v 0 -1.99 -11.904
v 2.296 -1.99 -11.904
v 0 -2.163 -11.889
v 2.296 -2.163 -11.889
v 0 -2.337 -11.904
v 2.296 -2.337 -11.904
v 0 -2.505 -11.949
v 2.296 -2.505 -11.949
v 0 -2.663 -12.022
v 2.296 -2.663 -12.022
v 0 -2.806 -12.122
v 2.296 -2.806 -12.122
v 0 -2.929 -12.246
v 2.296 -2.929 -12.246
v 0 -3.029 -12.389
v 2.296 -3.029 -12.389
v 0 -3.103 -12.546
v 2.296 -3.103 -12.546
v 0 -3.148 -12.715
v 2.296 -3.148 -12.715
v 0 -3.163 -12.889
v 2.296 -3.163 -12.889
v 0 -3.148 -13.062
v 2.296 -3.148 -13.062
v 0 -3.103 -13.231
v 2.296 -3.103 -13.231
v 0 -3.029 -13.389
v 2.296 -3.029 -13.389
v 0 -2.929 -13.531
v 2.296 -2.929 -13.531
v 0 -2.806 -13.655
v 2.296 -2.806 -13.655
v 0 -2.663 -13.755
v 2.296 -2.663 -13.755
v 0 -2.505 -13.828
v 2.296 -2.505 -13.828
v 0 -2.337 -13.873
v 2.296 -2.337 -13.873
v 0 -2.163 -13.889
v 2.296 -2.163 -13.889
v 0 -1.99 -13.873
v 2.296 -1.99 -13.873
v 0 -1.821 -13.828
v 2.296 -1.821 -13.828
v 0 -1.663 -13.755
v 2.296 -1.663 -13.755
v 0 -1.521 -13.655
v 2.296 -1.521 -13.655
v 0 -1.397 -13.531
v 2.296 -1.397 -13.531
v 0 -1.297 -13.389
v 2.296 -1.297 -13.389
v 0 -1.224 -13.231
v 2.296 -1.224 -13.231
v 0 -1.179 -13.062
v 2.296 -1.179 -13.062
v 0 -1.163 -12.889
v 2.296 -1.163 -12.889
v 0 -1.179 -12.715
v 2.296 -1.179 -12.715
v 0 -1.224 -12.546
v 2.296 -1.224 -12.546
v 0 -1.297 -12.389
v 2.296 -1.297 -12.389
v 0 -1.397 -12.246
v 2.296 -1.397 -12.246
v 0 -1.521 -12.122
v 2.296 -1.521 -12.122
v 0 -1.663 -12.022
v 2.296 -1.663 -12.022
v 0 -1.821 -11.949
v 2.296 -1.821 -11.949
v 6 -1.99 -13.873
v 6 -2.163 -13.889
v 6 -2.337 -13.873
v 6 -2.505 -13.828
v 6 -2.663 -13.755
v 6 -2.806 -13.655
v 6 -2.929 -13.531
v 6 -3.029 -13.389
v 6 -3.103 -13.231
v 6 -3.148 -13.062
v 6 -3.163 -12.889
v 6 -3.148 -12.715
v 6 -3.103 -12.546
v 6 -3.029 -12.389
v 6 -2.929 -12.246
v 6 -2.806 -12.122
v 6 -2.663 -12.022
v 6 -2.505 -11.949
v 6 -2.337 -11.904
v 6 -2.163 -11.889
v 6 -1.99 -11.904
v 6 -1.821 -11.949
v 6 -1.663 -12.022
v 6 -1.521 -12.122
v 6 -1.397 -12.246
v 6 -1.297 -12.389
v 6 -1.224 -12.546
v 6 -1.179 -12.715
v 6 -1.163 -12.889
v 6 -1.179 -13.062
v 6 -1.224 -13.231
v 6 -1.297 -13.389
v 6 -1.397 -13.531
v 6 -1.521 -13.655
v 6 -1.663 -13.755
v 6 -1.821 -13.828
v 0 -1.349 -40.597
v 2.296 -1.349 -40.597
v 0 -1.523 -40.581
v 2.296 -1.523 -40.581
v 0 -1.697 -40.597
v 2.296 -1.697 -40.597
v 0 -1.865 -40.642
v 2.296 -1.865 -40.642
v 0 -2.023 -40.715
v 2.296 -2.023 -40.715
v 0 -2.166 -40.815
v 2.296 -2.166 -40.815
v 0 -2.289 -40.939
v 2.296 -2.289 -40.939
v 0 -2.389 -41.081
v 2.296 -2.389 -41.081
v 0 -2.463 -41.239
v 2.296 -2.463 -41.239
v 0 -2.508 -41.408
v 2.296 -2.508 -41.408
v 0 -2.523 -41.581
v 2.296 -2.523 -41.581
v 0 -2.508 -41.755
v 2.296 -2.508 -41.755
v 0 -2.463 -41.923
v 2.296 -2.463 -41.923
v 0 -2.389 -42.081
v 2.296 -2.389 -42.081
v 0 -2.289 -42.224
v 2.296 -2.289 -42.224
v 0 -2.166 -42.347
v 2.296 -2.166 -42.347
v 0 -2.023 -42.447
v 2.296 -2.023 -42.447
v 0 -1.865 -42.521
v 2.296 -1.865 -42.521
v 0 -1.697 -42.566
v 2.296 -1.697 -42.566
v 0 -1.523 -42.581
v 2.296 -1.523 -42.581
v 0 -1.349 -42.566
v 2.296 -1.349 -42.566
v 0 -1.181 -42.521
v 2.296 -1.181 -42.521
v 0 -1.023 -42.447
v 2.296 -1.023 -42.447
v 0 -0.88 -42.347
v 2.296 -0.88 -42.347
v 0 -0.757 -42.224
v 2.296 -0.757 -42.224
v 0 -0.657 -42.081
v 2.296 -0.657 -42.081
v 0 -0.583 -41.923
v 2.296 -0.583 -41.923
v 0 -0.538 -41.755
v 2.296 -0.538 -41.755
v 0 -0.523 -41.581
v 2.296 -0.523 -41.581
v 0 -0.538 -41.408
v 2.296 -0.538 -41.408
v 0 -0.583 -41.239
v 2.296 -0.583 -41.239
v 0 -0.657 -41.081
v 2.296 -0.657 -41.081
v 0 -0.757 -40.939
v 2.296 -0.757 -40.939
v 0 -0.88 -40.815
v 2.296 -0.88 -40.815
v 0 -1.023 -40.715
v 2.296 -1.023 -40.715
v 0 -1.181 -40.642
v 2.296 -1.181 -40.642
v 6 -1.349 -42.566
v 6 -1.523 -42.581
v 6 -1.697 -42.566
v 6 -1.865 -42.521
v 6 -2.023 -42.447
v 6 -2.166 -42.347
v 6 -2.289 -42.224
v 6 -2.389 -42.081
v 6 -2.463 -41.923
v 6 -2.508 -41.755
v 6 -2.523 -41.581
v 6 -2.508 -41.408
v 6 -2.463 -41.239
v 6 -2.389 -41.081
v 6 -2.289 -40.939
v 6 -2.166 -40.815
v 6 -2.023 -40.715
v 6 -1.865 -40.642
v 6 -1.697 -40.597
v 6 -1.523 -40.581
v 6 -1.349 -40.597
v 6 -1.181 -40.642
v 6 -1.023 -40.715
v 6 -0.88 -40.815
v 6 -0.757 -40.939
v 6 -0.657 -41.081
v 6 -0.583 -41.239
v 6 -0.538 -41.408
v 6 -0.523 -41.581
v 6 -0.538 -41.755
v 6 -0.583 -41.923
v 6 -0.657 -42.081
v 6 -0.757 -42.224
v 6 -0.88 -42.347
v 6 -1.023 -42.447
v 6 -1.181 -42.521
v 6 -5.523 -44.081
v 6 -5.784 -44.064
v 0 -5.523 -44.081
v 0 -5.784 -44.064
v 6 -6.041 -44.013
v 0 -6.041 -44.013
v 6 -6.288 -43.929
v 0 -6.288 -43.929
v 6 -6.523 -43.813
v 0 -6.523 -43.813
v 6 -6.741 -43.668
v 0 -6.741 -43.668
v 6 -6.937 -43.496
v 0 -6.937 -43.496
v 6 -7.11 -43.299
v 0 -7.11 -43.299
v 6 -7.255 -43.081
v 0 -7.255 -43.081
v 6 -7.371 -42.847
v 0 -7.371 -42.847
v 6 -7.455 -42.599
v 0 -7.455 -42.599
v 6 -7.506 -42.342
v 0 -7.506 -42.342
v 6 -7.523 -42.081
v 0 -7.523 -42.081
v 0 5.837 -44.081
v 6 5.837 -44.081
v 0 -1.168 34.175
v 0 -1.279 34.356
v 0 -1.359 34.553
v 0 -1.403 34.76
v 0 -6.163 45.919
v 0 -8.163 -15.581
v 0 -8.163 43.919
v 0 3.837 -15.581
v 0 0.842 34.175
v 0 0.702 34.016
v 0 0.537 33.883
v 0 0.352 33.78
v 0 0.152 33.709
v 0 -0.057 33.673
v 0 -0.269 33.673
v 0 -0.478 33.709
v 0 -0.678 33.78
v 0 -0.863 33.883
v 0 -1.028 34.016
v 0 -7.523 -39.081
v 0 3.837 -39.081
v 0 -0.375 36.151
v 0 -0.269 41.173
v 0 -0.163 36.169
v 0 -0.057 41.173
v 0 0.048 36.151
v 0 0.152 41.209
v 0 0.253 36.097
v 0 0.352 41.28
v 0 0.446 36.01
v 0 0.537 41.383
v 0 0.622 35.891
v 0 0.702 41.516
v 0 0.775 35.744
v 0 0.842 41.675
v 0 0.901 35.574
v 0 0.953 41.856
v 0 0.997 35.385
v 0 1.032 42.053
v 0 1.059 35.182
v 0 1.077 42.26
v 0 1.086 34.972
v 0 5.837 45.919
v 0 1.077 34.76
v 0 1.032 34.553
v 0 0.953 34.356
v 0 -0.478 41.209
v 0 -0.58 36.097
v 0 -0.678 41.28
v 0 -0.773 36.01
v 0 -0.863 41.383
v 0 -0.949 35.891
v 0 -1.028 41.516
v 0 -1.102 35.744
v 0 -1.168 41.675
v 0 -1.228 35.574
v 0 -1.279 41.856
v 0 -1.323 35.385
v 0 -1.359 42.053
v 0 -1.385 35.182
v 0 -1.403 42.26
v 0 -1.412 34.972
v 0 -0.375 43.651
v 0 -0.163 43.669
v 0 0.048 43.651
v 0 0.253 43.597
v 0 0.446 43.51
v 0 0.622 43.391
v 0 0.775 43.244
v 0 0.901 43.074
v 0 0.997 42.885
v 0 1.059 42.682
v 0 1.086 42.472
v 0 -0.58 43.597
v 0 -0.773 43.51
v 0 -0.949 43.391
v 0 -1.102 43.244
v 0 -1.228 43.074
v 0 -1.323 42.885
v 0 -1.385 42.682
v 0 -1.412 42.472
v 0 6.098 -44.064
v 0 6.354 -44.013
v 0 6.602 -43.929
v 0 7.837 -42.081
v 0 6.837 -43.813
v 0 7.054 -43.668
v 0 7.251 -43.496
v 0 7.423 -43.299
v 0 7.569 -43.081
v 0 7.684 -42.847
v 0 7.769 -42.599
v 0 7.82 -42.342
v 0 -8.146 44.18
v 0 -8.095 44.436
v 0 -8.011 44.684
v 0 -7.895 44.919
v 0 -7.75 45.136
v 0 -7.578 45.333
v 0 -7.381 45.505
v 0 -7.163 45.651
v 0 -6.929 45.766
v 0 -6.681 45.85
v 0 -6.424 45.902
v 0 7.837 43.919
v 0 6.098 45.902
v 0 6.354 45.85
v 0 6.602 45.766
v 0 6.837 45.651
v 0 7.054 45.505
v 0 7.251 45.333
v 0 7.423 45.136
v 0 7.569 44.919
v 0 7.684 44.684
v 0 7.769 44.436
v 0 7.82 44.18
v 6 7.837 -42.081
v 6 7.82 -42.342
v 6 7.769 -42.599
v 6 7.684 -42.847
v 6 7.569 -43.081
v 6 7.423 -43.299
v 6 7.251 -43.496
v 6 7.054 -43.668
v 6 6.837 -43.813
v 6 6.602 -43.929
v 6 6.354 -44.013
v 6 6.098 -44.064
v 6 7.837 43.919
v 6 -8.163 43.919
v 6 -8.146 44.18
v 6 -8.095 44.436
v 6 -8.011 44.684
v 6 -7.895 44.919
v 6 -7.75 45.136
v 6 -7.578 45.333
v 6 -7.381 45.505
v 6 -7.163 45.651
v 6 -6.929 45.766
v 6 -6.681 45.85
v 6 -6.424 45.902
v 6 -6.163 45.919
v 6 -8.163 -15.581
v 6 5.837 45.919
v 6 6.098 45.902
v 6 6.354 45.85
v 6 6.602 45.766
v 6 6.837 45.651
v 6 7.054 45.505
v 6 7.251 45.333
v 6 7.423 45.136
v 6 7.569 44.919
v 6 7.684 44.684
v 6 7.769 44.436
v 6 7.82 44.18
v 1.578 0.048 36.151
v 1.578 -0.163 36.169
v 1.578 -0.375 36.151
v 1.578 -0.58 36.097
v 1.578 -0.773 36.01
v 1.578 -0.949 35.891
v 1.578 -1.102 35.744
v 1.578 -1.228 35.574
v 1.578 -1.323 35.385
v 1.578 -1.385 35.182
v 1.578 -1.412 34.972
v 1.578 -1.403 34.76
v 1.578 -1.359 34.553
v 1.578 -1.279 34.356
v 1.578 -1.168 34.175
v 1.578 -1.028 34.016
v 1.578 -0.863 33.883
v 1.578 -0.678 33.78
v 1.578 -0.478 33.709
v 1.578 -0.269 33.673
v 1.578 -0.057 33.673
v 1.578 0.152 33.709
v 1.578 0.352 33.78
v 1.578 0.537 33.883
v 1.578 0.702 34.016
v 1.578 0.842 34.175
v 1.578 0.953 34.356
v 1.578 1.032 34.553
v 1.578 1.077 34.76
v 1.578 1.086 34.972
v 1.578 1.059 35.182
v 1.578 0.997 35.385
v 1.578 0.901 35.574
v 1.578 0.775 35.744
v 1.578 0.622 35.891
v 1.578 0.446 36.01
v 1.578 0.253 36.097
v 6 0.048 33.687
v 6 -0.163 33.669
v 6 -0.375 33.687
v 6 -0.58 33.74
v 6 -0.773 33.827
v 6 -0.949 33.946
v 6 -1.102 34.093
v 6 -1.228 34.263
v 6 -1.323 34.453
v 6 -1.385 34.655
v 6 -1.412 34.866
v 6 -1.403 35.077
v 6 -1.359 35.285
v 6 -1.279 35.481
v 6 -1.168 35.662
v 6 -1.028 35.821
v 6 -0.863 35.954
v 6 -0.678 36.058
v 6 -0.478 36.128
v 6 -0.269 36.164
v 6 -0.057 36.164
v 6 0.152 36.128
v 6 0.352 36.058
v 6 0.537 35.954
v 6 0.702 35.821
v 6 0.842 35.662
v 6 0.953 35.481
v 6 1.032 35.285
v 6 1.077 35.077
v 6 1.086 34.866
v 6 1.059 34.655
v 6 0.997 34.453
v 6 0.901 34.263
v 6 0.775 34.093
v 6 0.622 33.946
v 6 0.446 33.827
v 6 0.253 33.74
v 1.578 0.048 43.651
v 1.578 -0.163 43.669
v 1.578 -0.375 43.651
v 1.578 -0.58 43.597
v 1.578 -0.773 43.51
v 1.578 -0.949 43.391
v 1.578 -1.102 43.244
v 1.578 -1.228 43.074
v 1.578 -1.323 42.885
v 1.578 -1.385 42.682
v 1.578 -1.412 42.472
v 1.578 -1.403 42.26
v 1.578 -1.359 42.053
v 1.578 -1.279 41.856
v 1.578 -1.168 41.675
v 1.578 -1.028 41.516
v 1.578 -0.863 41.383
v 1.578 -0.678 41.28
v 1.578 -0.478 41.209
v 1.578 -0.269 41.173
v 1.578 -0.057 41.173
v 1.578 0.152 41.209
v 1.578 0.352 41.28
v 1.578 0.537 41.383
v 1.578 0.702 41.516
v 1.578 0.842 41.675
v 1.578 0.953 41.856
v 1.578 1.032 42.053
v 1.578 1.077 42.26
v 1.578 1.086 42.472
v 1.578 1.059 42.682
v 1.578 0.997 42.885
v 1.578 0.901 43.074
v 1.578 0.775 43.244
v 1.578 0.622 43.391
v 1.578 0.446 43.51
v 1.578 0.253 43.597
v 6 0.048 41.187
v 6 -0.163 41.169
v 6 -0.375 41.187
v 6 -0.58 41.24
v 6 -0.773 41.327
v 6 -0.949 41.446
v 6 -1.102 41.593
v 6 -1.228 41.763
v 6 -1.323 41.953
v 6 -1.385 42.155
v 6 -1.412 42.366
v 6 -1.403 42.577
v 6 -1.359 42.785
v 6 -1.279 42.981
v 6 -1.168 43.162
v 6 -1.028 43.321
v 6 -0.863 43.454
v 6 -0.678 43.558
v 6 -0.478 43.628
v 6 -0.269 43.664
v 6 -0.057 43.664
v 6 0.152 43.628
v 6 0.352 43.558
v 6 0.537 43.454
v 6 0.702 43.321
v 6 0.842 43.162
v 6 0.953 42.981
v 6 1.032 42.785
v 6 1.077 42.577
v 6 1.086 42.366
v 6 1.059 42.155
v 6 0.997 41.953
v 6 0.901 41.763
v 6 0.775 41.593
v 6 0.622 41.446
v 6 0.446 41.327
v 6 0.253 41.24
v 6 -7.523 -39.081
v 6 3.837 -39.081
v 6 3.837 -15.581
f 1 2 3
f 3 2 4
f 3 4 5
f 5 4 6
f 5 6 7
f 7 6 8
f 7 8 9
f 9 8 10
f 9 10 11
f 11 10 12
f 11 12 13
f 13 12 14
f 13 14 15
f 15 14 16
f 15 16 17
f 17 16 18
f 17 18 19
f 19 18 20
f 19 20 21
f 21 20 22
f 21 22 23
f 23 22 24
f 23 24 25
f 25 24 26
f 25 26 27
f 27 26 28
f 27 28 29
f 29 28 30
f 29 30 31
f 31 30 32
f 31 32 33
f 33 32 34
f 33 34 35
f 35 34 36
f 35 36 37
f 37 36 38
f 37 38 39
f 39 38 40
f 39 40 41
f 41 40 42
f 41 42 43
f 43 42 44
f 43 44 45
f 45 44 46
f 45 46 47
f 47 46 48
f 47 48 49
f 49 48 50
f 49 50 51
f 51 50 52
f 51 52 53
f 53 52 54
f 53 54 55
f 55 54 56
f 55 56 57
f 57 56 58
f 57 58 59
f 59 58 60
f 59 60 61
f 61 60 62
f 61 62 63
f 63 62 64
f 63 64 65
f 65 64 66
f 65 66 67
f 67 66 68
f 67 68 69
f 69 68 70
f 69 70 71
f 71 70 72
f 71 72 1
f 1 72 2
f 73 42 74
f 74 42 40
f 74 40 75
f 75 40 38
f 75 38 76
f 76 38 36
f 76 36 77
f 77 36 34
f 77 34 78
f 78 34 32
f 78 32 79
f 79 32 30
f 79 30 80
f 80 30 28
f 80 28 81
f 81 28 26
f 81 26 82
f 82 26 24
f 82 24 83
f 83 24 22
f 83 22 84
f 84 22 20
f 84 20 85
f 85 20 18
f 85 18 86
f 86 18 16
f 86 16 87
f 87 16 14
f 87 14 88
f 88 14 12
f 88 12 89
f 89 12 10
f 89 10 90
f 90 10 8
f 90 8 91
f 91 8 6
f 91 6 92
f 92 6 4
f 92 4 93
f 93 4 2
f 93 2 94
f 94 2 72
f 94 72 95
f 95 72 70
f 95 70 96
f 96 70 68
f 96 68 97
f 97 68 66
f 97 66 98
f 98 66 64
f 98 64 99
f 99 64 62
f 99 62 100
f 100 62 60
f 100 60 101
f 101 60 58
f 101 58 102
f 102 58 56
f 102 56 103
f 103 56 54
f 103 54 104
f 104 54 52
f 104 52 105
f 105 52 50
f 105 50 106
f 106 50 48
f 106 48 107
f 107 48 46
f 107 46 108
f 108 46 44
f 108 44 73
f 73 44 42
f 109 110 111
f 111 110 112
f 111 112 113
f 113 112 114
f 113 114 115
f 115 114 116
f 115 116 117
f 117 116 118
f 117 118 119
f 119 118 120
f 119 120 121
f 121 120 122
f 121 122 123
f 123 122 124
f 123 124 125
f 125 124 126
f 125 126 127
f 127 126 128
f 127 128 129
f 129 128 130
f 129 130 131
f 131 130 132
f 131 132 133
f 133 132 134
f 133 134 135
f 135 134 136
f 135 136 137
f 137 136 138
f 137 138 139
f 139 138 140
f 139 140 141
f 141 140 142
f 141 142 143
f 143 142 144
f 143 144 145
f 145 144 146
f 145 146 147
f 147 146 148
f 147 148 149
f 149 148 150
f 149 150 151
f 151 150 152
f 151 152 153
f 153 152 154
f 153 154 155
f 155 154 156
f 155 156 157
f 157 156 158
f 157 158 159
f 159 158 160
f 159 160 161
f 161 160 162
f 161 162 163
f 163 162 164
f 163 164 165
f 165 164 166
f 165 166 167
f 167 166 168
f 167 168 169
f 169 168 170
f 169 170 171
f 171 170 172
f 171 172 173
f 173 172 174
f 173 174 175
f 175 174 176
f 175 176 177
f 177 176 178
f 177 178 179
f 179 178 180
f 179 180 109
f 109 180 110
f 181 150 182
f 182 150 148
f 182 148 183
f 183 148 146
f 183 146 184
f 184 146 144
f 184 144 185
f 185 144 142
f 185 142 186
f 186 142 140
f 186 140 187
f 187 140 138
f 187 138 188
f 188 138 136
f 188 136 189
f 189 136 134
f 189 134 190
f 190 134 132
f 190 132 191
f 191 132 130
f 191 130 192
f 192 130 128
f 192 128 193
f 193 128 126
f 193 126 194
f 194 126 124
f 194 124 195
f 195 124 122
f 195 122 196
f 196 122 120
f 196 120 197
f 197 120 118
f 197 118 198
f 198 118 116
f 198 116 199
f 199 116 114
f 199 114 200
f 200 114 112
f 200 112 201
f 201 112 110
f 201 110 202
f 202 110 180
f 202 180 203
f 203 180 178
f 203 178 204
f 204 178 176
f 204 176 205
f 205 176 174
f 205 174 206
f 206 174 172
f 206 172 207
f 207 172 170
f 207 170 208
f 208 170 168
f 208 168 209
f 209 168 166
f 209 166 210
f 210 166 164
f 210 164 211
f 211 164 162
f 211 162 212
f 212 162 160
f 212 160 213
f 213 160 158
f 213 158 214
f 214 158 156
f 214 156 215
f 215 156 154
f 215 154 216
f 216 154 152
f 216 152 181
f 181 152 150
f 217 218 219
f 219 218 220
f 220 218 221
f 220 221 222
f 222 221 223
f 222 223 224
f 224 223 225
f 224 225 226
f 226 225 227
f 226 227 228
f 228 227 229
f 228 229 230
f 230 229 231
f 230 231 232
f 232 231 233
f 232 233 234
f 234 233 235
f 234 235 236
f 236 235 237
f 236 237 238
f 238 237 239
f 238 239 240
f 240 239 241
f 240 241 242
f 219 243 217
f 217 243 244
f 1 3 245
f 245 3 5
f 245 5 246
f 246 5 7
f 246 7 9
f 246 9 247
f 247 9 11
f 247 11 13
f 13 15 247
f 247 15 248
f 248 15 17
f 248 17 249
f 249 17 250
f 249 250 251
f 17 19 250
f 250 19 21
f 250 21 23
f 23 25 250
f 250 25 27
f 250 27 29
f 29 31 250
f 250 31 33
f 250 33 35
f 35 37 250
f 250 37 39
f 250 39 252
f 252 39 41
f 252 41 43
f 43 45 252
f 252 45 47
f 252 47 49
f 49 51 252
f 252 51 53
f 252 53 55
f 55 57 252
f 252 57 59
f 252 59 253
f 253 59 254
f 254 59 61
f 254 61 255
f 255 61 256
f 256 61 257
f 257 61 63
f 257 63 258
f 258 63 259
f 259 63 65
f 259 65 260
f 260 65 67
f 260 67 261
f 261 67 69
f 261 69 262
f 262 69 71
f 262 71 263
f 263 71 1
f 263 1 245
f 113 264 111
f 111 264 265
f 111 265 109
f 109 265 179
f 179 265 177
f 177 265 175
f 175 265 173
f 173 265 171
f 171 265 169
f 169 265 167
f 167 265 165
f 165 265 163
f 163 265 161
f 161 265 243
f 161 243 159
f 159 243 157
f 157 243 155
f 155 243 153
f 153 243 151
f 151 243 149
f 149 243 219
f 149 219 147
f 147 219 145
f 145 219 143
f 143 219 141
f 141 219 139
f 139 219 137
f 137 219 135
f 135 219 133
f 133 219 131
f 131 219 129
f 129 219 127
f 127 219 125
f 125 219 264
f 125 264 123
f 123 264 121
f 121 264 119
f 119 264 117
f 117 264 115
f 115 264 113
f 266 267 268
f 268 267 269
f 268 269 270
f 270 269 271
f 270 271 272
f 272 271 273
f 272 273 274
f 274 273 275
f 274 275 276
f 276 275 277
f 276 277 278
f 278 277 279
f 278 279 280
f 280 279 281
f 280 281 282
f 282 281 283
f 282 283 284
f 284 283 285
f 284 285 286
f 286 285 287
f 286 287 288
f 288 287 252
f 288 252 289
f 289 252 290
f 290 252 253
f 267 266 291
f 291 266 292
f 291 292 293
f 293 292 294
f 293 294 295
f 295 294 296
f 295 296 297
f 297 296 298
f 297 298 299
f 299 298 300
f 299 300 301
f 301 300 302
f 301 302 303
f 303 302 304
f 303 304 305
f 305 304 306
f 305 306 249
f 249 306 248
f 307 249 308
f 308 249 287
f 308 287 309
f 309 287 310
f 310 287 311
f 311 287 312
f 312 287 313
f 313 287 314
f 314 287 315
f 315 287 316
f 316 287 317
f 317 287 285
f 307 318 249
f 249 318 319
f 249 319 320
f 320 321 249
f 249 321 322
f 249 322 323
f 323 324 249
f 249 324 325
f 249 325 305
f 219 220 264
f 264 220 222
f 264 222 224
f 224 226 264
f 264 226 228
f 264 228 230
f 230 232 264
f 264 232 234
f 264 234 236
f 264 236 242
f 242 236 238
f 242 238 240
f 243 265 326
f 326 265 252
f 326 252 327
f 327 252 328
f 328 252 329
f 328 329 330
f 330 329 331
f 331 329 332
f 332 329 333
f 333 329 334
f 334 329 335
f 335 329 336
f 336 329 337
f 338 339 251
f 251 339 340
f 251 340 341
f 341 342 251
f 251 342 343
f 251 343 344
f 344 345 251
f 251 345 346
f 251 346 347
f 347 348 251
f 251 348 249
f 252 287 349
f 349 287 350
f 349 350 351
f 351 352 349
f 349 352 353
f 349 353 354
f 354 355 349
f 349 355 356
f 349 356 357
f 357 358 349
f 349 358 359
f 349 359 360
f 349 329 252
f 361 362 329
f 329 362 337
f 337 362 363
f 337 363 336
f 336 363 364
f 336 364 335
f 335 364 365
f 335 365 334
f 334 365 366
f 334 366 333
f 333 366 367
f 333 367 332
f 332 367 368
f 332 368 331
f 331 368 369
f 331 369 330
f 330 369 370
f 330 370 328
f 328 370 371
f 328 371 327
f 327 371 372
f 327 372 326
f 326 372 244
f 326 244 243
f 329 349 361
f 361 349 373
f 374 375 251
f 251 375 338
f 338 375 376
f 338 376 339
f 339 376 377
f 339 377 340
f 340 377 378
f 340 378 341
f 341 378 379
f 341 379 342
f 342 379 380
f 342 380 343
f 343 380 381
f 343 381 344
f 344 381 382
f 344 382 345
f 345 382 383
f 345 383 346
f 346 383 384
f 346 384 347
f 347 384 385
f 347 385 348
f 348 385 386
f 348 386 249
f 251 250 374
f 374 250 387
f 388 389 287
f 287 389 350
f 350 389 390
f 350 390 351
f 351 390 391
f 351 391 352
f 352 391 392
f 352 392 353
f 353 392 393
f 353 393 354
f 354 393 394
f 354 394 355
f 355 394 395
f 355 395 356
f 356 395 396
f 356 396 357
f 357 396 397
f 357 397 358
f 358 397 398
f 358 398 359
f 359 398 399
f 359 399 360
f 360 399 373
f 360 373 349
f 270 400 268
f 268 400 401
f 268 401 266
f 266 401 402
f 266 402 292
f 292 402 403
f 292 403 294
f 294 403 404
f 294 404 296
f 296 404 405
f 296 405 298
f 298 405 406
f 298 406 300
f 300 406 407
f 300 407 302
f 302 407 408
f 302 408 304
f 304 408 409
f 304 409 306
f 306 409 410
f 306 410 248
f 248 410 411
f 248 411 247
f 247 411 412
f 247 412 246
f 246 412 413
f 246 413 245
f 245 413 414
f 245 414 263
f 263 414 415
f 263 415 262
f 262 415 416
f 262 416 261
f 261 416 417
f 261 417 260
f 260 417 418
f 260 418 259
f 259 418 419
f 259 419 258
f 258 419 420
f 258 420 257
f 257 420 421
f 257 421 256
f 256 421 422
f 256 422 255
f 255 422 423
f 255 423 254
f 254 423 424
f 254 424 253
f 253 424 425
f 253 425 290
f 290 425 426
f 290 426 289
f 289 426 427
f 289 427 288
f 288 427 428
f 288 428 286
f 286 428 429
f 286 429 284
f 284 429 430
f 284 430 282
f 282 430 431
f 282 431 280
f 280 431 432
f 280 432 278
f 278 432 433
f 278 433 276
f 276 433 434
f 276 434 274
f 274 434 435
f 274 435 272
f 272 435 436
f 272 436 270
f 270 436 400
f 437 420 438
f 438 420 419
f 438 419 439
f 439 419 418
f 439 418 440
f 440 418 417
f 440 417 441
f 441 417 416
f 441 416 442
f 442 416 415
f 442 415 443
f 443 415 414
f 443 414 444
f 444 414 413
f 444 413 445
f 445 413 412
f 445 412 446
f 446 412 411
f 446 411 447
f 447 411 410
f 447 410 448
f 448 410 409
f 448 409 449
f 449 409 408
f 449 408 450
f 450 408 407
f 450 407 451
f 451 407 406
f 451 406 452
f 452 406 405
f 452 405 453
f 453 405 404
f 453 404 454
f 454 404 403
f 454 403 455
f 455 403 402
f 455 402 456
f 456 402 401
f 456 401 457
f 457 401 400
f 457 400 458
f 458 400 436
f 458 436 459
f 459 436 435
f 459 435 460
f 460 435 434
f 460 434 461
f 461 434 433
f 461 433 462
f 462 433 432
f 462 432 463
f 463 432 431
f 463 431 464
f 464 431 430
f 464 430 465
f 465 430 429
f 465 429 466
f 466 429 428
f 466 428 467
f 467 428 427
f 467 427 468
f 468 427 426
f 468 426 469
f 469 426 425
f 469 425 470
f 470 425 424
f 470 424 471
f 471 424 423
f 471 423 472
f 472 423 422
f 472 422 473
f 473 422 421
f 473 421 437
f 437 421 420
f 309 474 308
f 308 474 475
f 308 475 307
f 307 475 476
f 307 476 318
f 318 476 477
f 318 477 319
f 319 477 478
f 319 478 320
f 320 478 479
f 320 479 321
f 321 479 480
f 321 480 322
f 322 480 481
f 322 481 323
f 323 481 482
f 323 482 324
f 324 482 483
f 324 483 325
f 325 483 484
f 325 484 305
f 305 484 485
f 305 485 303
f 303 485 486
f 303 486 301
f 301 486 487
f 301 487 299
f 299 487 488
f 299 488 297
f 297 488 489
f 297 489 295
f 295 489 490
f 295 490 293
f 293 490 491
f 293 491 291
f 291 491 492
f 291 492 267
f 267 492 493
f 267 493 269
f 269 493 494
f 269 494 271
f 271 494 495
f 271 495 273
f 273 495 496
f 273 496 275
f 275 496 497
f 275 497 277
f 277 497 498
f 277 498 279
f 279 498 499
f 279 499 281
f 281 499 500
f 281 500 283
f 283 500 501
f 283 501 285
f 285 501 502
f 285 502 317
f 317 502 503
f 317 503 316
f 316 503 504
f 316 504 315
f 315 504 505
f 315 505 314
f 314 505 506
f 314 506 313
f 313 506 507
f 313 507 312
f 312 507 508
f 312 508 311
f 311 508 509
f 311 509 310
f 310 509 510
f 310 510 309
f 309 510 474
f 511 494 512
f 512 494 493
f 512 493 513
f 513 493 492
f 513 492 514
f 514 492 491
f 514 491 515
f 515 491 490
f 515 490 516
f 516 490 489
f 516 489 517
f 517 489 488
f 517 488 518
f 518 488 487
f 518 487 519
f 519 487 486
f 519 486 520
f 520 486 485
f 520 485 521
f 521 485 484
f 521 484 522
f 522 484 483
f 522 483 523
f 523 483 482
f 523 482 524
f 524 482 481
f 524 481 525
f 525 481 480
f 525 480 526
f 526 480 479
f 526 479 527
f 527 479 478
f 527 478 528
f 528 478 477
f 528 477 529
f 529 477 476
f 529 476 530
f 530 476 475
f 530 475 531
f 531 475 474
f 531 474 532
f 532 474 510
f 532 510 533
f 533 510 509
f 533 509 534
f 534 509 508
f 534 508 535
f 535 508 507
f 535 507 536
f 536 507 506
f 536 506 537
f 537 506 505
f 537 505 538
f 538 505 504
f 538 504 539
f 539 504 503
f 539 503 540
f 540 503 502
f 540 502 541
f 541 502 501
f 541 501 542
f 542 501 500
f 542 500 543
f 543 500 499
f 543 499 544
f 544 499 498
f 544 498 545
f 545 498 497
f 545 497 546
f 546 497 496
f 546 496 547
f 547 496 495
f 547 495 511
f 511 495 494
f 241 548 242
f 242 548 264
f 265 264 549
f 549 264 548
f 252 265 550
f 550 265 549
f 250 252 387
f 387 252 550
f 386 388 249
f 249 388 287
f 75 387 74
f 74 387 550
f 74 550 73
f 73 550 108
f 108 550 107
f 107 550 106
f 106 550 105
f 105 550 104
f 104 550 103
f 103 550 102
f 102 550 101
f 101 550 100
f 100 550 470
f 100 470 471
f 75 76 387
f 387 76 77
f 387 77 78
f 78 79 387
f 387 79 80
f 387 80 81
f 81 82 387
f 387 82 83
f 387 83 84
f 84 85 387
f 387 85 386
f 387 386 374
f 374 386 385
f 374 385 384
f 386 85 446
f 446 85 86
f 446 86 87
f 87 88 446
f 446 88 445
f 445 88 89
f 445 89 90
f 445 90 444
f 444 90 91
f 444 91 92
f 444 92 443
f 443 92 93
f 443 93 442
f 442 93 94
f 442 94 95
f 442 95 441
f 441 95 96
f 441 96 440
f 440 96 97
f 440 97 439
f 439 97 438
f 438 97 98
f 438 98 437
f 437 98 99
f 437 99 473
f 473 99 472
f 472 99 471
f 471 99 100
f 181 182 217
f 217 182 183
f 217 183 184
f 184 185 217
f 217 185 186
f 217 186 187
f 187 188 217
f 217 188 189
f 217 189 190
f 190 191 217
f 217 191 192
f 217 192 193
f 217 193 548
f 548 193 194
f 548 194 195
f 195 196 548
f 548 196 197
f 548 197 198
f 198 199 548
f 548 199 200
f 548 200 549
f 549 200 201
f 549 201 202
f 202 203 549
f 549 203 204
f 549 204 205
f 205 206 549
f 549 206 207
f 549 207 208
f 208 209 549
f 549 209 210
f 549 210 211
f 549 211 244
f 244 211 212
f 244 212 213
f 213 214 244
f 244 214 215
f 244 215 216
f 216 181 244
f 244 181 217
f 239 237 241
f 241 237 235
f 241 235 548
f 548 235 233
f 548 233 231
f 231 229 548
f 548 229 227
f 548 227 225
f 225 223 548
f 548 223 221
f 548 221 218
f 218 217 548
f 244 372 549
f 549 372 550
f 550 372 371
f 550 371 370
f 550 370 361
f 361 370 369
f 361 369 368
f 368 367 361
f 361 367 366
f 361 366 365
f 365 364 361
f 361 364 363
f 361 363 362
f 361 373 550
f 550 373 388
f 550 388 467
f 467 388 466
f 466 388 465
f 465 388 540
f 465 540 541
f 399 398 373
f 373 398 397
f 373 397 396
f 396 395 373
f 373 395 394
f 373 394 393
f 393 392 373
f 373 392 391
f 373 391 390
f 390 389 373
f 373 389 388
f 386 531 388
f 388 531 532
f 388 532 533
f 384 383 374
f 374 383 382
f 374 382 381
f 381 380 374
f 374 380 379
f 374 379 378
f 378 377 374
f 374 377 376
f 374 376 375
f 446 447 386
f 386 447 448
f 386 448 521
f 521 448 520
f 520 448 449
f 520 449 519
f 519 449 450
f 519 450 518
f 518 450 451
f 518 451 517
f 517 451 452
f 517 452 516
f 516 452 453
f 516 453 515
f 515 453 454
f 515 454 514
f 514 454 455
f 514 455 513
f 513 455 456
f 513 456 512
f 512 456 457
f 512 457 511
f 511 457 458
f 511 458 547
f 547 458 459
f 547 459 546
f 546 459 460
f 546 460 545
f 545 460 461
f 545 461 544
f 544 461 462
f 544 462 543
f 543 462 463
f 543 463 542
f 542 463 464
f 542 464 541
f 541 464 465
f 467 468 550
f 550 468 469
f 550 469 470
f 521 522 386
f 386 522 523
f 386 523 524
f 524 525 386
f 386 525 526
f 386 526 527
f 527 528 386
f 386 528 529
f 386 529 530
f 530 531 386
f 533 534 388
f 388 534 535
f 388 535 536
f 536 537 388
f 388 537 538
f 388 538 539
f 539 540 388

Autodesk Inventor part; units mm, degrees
ref_plane "YZ Plane" through (0, 0, 0) normal (1, 0, 0) x (0, 1, 0)
ref_plane "XZ Plane" through (0, 0, 0) normal (0, 1, 0) x (-1, 0, 0)
ref_plane "XY Plane" through (0, 0, 0) normal (0, 0, 1) x (1, 0, 0)
sketch "Sketch1" plane through (0, 0, 0) normal (1, 0, 0) x (0, 1, 0)
  line L0 (-7.5231, -44.0814) -> (7.8367, -44.0814)
  line L1 (7.8367, -44.0814) -> (7.8367, 45.9186)
  line L2 (7.8367, 45.9186) -> (-8.1633, 45.9186)
  line L3 (-7.5231, -44.0814) -> (7.8367, 45.9186) construction
  line L4 (7.8367, -44.0814) -> (-8.1633, 45.9186) construction
  line L5 (-8.1633, 45.9186) -> (-8.1633, -15.5814)
  line L6 (3.8367, -15.5814) -> (-8.1633, -15.5814)
  line L7 (3.8367, -15.5814) -> (3.8367, -39.0814)
  line L8 (3.8367, -39.0814) -> (-7.5231, -39.0814)
  line L9 (-7.5231, -39.0814) -> (-7.5231, -44.0814)
  point P0 (0, 0)
  dimension "d0" = 16
  dimension "d1" = 90
  dimension "d24" = 12
  dimension "d28" = 5
  dimension "d29" = 23.5
extrude "Extrusion1" add sketch "Sketch1" along normal blind 6
sketch "Sketch2" plane through (6, 0, 0) normal (1, 0, 0) x (0, 0, -1)
  point P0 (0, 0)
sketch "Sketch3" plane through (6, 0, 0) normal (1, 0, 0) x (0, 0, -1)
  line L0 (-45.9186, 7.8367) -> (-45.9186, -8.1633) projected
  line L1 (44.0814, -7.5231) -> (44.0814, 7.8367) projected
  point P0 (0, 0)
  point P1 (-34.9186, -0.1633)
  point P2 (27.0814, 0.4769)
  point P3 (-42.4186, -0.1633)
  dimension "d4" = 11
  dimension "d5" = 17
  dimension "d23" = 7.5
hole "Hole1" at (6, -0.1633, 34.9186) at (6, -0.1633, 42.4186) direction (-1, 0, 0) diameter 2.5 end through all
fillet "Fillet1" radius 2 4 edges at (3, 7.8367, 45.9186) (3, -8.1633, 45.9186) (3, 7.8367, -44.0814) (3, -7.5231, -44.0814)
sketch "Sketch4" plane through (6, 0, 0) normal (1, 0, 0) x (0, 0, -1)
  line L0 (44.0814, -5.5231) -> (44.0814, 5.8367) projected
  line L1 (-43.9186, -8.1633) -> (15.5814, -8.1633) projected
  line L2 (39.0814, -7.5231) -> (42.0814, -7.5231) projected
  point P0 (0, 0)
  point P1 (41.5814, -1.5231)
  point P2 (12.8885, -2.1633)
  dimension "d14" = 2.5
  dimension "d15" = 28.7
  dimension "d30" = 6
  dimension "d31" = 6
hole "Hole2" at (6, -2.1633, -12.8885) at (6, -1.5231, -41.5814) direction (-1, 0, 0) diameter 2 end through all
properties part number "Arm1"
